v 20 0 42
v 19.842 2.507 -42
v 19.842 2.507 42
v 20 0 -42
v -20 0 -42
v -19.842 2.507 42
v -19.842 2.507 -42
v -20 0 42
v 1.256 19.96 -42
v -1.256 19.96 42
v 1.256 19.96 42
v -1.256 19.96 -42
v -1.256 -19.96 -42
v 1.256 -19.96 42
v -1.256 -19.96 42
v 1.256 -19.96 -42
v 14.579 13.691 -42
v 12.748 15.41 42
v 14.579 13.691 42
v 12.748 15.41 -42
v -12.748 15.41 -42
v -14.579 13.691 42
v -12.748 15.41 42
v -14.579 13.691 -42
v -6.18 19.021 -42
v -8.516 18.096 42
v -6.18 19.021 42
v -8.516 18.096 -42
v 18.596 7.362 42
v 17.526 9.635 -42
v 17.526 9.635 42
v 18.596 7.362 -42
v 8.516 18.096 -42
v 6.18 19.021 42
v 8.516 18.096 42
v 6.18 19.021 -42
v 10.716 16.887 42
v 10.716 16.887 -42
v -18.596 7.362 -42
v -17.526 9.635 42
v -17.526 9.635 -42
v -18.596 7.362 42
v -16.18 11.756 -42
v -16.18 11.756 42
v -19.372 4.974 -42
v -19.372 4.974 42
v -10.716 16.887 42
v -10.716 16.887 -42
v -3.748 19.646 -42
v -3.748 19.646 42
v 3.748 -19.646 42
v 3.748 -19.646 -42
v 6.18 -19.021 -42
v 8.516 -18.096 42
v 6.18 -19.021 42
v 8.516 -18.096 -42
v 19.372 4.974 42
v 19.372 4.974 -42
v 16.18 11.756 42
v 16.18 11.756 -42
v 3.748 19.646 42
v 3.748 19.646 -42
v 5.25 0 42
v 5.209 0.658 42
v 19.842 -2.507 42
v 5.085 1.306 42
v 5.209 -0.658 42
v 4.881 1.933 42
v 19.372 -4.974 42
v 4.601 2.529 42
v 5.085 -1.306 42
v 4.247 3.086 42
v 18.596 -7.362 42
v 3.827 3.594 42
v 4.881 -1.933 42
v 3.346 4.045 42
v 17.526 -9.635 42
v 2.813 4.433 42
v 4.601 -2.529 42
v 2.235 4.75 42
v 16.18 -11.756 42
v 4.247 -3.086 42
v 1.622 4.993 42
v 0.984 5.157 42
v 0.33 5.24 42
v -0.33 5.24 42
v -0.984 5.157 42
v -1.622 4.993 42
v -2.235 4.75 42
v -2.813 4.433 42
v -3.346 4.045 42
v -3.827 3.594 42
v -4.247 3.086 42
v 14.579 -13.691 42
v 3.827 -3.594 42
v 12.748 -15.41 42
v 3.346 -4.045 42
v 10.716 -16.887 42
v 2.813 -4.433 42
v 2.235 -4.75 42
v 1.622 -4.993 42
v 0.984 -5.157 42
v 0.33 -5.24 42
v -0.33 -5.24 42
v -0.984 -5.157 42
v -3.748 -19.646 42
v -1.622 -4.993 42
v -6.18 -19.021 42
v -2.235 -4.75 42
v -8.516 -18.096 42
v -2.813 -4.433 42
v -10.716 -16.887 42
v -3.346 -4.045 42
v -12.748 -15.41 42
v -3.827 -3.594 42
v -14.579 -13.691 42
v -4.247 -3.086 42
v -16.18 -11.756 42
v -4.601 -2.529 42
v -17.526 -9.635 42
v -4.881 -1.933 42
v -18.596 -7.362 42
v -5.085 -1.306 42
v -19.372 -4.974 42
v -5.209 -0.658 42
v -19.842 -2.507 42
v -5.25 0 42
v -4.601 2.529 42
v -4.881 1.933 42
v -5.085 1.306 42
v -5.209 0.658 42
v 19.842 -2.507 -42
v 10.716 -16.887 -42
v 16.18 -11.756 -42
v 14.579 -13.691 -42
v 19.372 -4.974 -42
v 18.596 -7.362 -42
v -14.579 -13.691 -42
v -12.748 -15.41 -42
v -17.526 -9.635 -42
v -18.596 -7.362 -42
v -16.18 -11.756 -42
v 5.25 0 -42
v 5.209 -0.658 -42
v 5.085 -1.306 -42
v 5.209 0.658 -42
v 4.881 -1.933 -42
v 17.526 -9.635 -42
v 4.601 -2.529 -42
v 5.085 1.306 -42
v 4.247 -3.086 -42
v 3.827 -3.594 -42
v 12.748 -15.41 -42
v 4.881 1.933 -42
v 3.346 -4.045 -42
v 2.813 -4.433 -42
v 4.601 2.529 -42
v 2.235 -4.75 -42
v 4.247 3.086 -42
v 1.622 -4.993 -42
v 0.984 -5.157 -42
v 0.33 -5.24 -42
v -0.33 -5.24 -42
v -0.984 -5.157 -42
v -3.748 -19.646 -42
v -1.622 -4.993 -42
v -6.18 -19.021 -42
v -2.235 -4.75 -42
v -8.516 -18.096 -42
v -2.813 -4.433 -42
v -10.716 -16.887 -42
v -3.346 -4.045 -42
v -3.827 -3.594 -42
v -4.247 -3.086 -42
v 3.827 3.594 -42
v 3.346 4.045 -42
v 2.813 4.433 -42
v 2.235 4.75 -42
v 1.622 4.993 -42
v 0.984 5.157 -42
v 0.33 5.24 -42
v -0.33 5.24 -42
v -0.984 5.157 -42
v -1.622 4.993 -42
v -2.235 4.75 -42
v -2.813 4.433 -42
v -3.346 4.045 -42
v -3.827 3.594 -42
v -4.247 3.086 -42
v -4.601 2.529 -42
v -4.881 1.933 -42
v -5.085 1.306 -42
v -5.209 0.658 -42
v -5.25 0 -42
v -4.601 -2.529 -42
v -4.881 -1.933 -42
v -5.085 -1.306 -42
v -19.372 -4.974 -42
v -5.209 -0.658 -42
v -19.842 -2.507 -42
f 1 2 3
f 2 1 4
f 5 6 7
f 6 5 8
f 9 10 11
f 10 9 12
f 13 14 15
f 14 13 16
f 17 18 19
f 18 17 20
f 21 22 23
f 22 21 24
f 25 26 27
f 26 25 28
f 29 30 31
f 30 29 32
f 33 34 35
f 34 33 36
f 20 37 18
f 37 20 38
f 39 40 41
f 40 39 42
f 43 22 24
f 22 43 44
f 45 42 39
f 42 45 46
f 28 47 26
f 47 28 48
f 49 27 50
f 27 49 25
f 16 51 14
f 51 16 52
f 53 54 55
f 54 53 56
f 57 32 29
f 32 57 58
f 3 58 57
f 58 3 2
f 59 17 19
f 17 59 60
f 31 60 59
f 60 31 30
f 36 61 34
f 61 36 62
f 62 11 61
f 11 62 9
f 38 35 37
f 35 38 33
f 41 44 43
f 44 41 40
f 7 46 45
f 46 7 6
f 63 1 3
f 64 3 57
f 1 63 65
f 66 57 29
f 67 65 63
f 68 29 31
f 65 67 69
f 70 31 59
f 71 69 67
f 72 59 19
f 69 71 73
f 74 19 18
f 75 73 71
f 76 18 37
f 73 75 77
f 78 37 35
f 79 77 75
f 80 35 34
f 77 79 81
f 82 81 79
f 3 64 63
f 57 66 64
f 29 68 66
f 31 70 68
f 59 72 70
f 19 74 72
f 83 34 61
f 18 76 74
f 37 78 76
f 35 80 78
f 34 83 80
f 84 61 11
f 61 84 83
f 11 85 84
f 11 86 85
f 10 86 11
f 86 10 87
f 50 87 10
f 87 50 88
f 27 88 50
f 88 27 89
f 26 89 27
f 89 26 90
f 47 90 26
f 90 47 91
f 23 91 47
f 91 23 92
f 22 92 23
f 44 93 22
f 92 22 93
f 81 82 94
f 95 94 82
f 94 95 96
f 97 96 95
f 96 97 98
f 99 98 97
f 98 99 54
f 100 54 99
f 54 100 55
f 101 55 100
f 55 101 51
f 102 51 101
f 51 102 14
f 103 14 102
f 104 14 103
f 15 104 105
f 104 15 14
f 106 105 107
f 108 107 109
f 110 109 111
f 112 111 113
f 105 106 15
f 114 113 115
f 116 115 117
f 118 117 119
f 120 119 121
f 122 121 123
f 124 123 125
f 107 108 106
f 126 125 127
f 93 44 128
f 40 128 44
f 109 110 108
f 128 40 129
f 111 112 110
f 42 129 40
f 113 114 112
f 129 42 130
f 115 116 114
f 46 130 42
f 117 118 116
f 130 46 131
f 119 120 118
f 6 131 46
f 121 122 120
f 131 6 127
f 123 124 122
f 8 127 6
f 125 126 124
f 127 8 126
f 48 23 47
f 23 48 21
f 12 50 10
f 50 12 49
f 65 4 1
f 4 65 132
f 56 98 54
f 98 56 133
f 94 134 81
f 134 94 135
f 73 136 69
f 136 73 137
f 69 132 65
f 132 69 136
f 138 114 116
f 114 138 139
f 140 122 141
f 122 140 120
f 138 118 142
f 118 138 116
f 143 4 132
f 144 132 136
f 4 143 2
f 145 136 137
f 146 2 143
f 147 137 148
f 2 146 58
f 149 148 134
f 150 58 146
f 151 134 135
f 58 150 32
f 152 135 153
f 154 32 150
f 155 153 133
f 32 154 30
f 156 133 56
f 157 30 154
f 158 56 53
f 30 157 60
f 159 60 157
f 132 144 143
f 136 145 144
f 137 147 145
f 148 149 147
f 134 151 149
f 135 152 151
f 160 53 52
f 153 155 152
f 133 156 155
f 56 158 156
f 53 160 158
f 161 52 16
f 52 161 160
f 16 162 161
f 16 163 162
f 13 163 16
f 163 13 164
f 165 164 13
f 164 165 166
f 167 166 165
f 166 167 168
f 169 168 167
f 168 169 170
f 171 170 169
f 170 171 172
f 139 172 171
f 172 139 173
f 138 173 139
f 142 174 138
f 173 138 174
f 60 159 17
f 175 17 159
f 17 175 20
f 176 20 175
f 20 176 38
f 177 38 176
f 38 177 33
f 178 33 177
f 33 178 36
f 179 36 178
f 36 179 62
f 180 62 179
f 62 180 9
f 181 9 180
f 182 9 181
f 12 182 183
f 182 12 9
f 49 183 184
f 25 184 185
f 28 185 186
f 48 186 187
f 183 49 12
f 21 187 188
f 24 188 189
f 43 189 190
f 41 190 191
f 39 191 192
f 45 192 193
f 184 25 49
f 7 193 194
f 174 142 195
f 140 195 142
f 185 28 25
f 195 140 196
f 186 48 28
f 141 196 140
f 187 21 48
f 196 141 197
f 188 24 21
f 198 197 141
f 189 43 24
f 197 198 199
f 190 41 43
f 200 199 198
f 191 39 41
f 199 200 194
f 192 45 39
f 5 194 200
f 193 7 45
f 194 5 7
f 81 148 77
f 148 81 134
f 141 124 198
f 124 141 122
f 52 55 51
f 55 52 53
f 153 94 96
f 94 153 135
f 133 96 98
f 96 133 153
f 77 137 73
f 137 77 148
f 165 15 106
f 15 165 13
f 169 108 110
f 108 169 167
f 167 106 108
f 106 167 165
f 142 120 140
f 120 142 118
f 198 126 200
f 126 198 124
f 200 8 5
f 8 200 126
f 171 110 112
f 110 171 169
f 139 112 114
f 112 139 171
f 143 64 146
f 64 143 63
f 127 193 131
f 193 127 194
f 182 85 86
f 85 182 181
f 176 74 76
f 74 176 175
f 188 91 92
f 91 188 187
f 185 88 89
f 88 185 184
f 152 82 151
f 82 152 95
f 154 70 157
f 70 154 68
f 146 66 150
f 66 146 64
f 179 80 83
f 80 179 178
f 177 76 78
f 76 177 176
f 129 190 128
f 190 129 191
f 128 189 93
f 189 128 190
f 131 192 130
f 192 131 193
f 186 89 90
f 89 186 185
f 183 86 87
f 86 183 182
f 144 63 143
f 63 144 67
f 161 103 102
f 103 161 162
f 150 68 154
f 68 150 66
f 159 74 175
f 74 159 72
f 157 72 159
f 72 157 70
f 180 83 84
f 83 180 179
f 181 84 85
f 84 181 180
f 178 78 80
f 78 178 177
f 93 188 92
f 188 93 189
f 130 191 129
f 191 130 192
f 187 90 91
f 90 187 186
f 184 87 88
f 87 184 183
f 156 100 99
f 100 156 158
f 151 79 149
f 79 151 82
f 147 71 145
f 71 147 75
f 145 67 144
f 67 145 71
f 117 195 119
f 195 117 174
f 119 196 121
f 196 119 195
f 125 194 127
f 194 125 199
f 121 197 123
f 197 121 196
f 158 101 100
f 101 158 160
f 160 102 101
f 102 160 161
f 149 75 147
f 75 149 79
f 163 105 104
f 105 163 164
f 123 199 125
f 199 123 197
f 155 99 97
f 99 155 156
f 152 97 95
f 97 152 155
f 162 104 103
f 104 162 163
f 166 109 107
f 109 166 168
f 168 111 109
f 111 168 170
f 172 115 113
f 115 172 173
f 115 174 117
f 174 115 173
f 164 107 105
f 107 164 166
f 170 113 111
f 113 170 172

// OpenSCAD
$fn = 50;


difference() {
	union() {
		translate(v = [0, 0, -42.0000000000]) {
			cylinder(h = 84, r = 20.0000000000);
		}
	}
	union() {
		translate(v = [0, 0, -100.0000000000]) {
			cylinder(h = 200, r = 5.2500000000);
		}
	}
}
